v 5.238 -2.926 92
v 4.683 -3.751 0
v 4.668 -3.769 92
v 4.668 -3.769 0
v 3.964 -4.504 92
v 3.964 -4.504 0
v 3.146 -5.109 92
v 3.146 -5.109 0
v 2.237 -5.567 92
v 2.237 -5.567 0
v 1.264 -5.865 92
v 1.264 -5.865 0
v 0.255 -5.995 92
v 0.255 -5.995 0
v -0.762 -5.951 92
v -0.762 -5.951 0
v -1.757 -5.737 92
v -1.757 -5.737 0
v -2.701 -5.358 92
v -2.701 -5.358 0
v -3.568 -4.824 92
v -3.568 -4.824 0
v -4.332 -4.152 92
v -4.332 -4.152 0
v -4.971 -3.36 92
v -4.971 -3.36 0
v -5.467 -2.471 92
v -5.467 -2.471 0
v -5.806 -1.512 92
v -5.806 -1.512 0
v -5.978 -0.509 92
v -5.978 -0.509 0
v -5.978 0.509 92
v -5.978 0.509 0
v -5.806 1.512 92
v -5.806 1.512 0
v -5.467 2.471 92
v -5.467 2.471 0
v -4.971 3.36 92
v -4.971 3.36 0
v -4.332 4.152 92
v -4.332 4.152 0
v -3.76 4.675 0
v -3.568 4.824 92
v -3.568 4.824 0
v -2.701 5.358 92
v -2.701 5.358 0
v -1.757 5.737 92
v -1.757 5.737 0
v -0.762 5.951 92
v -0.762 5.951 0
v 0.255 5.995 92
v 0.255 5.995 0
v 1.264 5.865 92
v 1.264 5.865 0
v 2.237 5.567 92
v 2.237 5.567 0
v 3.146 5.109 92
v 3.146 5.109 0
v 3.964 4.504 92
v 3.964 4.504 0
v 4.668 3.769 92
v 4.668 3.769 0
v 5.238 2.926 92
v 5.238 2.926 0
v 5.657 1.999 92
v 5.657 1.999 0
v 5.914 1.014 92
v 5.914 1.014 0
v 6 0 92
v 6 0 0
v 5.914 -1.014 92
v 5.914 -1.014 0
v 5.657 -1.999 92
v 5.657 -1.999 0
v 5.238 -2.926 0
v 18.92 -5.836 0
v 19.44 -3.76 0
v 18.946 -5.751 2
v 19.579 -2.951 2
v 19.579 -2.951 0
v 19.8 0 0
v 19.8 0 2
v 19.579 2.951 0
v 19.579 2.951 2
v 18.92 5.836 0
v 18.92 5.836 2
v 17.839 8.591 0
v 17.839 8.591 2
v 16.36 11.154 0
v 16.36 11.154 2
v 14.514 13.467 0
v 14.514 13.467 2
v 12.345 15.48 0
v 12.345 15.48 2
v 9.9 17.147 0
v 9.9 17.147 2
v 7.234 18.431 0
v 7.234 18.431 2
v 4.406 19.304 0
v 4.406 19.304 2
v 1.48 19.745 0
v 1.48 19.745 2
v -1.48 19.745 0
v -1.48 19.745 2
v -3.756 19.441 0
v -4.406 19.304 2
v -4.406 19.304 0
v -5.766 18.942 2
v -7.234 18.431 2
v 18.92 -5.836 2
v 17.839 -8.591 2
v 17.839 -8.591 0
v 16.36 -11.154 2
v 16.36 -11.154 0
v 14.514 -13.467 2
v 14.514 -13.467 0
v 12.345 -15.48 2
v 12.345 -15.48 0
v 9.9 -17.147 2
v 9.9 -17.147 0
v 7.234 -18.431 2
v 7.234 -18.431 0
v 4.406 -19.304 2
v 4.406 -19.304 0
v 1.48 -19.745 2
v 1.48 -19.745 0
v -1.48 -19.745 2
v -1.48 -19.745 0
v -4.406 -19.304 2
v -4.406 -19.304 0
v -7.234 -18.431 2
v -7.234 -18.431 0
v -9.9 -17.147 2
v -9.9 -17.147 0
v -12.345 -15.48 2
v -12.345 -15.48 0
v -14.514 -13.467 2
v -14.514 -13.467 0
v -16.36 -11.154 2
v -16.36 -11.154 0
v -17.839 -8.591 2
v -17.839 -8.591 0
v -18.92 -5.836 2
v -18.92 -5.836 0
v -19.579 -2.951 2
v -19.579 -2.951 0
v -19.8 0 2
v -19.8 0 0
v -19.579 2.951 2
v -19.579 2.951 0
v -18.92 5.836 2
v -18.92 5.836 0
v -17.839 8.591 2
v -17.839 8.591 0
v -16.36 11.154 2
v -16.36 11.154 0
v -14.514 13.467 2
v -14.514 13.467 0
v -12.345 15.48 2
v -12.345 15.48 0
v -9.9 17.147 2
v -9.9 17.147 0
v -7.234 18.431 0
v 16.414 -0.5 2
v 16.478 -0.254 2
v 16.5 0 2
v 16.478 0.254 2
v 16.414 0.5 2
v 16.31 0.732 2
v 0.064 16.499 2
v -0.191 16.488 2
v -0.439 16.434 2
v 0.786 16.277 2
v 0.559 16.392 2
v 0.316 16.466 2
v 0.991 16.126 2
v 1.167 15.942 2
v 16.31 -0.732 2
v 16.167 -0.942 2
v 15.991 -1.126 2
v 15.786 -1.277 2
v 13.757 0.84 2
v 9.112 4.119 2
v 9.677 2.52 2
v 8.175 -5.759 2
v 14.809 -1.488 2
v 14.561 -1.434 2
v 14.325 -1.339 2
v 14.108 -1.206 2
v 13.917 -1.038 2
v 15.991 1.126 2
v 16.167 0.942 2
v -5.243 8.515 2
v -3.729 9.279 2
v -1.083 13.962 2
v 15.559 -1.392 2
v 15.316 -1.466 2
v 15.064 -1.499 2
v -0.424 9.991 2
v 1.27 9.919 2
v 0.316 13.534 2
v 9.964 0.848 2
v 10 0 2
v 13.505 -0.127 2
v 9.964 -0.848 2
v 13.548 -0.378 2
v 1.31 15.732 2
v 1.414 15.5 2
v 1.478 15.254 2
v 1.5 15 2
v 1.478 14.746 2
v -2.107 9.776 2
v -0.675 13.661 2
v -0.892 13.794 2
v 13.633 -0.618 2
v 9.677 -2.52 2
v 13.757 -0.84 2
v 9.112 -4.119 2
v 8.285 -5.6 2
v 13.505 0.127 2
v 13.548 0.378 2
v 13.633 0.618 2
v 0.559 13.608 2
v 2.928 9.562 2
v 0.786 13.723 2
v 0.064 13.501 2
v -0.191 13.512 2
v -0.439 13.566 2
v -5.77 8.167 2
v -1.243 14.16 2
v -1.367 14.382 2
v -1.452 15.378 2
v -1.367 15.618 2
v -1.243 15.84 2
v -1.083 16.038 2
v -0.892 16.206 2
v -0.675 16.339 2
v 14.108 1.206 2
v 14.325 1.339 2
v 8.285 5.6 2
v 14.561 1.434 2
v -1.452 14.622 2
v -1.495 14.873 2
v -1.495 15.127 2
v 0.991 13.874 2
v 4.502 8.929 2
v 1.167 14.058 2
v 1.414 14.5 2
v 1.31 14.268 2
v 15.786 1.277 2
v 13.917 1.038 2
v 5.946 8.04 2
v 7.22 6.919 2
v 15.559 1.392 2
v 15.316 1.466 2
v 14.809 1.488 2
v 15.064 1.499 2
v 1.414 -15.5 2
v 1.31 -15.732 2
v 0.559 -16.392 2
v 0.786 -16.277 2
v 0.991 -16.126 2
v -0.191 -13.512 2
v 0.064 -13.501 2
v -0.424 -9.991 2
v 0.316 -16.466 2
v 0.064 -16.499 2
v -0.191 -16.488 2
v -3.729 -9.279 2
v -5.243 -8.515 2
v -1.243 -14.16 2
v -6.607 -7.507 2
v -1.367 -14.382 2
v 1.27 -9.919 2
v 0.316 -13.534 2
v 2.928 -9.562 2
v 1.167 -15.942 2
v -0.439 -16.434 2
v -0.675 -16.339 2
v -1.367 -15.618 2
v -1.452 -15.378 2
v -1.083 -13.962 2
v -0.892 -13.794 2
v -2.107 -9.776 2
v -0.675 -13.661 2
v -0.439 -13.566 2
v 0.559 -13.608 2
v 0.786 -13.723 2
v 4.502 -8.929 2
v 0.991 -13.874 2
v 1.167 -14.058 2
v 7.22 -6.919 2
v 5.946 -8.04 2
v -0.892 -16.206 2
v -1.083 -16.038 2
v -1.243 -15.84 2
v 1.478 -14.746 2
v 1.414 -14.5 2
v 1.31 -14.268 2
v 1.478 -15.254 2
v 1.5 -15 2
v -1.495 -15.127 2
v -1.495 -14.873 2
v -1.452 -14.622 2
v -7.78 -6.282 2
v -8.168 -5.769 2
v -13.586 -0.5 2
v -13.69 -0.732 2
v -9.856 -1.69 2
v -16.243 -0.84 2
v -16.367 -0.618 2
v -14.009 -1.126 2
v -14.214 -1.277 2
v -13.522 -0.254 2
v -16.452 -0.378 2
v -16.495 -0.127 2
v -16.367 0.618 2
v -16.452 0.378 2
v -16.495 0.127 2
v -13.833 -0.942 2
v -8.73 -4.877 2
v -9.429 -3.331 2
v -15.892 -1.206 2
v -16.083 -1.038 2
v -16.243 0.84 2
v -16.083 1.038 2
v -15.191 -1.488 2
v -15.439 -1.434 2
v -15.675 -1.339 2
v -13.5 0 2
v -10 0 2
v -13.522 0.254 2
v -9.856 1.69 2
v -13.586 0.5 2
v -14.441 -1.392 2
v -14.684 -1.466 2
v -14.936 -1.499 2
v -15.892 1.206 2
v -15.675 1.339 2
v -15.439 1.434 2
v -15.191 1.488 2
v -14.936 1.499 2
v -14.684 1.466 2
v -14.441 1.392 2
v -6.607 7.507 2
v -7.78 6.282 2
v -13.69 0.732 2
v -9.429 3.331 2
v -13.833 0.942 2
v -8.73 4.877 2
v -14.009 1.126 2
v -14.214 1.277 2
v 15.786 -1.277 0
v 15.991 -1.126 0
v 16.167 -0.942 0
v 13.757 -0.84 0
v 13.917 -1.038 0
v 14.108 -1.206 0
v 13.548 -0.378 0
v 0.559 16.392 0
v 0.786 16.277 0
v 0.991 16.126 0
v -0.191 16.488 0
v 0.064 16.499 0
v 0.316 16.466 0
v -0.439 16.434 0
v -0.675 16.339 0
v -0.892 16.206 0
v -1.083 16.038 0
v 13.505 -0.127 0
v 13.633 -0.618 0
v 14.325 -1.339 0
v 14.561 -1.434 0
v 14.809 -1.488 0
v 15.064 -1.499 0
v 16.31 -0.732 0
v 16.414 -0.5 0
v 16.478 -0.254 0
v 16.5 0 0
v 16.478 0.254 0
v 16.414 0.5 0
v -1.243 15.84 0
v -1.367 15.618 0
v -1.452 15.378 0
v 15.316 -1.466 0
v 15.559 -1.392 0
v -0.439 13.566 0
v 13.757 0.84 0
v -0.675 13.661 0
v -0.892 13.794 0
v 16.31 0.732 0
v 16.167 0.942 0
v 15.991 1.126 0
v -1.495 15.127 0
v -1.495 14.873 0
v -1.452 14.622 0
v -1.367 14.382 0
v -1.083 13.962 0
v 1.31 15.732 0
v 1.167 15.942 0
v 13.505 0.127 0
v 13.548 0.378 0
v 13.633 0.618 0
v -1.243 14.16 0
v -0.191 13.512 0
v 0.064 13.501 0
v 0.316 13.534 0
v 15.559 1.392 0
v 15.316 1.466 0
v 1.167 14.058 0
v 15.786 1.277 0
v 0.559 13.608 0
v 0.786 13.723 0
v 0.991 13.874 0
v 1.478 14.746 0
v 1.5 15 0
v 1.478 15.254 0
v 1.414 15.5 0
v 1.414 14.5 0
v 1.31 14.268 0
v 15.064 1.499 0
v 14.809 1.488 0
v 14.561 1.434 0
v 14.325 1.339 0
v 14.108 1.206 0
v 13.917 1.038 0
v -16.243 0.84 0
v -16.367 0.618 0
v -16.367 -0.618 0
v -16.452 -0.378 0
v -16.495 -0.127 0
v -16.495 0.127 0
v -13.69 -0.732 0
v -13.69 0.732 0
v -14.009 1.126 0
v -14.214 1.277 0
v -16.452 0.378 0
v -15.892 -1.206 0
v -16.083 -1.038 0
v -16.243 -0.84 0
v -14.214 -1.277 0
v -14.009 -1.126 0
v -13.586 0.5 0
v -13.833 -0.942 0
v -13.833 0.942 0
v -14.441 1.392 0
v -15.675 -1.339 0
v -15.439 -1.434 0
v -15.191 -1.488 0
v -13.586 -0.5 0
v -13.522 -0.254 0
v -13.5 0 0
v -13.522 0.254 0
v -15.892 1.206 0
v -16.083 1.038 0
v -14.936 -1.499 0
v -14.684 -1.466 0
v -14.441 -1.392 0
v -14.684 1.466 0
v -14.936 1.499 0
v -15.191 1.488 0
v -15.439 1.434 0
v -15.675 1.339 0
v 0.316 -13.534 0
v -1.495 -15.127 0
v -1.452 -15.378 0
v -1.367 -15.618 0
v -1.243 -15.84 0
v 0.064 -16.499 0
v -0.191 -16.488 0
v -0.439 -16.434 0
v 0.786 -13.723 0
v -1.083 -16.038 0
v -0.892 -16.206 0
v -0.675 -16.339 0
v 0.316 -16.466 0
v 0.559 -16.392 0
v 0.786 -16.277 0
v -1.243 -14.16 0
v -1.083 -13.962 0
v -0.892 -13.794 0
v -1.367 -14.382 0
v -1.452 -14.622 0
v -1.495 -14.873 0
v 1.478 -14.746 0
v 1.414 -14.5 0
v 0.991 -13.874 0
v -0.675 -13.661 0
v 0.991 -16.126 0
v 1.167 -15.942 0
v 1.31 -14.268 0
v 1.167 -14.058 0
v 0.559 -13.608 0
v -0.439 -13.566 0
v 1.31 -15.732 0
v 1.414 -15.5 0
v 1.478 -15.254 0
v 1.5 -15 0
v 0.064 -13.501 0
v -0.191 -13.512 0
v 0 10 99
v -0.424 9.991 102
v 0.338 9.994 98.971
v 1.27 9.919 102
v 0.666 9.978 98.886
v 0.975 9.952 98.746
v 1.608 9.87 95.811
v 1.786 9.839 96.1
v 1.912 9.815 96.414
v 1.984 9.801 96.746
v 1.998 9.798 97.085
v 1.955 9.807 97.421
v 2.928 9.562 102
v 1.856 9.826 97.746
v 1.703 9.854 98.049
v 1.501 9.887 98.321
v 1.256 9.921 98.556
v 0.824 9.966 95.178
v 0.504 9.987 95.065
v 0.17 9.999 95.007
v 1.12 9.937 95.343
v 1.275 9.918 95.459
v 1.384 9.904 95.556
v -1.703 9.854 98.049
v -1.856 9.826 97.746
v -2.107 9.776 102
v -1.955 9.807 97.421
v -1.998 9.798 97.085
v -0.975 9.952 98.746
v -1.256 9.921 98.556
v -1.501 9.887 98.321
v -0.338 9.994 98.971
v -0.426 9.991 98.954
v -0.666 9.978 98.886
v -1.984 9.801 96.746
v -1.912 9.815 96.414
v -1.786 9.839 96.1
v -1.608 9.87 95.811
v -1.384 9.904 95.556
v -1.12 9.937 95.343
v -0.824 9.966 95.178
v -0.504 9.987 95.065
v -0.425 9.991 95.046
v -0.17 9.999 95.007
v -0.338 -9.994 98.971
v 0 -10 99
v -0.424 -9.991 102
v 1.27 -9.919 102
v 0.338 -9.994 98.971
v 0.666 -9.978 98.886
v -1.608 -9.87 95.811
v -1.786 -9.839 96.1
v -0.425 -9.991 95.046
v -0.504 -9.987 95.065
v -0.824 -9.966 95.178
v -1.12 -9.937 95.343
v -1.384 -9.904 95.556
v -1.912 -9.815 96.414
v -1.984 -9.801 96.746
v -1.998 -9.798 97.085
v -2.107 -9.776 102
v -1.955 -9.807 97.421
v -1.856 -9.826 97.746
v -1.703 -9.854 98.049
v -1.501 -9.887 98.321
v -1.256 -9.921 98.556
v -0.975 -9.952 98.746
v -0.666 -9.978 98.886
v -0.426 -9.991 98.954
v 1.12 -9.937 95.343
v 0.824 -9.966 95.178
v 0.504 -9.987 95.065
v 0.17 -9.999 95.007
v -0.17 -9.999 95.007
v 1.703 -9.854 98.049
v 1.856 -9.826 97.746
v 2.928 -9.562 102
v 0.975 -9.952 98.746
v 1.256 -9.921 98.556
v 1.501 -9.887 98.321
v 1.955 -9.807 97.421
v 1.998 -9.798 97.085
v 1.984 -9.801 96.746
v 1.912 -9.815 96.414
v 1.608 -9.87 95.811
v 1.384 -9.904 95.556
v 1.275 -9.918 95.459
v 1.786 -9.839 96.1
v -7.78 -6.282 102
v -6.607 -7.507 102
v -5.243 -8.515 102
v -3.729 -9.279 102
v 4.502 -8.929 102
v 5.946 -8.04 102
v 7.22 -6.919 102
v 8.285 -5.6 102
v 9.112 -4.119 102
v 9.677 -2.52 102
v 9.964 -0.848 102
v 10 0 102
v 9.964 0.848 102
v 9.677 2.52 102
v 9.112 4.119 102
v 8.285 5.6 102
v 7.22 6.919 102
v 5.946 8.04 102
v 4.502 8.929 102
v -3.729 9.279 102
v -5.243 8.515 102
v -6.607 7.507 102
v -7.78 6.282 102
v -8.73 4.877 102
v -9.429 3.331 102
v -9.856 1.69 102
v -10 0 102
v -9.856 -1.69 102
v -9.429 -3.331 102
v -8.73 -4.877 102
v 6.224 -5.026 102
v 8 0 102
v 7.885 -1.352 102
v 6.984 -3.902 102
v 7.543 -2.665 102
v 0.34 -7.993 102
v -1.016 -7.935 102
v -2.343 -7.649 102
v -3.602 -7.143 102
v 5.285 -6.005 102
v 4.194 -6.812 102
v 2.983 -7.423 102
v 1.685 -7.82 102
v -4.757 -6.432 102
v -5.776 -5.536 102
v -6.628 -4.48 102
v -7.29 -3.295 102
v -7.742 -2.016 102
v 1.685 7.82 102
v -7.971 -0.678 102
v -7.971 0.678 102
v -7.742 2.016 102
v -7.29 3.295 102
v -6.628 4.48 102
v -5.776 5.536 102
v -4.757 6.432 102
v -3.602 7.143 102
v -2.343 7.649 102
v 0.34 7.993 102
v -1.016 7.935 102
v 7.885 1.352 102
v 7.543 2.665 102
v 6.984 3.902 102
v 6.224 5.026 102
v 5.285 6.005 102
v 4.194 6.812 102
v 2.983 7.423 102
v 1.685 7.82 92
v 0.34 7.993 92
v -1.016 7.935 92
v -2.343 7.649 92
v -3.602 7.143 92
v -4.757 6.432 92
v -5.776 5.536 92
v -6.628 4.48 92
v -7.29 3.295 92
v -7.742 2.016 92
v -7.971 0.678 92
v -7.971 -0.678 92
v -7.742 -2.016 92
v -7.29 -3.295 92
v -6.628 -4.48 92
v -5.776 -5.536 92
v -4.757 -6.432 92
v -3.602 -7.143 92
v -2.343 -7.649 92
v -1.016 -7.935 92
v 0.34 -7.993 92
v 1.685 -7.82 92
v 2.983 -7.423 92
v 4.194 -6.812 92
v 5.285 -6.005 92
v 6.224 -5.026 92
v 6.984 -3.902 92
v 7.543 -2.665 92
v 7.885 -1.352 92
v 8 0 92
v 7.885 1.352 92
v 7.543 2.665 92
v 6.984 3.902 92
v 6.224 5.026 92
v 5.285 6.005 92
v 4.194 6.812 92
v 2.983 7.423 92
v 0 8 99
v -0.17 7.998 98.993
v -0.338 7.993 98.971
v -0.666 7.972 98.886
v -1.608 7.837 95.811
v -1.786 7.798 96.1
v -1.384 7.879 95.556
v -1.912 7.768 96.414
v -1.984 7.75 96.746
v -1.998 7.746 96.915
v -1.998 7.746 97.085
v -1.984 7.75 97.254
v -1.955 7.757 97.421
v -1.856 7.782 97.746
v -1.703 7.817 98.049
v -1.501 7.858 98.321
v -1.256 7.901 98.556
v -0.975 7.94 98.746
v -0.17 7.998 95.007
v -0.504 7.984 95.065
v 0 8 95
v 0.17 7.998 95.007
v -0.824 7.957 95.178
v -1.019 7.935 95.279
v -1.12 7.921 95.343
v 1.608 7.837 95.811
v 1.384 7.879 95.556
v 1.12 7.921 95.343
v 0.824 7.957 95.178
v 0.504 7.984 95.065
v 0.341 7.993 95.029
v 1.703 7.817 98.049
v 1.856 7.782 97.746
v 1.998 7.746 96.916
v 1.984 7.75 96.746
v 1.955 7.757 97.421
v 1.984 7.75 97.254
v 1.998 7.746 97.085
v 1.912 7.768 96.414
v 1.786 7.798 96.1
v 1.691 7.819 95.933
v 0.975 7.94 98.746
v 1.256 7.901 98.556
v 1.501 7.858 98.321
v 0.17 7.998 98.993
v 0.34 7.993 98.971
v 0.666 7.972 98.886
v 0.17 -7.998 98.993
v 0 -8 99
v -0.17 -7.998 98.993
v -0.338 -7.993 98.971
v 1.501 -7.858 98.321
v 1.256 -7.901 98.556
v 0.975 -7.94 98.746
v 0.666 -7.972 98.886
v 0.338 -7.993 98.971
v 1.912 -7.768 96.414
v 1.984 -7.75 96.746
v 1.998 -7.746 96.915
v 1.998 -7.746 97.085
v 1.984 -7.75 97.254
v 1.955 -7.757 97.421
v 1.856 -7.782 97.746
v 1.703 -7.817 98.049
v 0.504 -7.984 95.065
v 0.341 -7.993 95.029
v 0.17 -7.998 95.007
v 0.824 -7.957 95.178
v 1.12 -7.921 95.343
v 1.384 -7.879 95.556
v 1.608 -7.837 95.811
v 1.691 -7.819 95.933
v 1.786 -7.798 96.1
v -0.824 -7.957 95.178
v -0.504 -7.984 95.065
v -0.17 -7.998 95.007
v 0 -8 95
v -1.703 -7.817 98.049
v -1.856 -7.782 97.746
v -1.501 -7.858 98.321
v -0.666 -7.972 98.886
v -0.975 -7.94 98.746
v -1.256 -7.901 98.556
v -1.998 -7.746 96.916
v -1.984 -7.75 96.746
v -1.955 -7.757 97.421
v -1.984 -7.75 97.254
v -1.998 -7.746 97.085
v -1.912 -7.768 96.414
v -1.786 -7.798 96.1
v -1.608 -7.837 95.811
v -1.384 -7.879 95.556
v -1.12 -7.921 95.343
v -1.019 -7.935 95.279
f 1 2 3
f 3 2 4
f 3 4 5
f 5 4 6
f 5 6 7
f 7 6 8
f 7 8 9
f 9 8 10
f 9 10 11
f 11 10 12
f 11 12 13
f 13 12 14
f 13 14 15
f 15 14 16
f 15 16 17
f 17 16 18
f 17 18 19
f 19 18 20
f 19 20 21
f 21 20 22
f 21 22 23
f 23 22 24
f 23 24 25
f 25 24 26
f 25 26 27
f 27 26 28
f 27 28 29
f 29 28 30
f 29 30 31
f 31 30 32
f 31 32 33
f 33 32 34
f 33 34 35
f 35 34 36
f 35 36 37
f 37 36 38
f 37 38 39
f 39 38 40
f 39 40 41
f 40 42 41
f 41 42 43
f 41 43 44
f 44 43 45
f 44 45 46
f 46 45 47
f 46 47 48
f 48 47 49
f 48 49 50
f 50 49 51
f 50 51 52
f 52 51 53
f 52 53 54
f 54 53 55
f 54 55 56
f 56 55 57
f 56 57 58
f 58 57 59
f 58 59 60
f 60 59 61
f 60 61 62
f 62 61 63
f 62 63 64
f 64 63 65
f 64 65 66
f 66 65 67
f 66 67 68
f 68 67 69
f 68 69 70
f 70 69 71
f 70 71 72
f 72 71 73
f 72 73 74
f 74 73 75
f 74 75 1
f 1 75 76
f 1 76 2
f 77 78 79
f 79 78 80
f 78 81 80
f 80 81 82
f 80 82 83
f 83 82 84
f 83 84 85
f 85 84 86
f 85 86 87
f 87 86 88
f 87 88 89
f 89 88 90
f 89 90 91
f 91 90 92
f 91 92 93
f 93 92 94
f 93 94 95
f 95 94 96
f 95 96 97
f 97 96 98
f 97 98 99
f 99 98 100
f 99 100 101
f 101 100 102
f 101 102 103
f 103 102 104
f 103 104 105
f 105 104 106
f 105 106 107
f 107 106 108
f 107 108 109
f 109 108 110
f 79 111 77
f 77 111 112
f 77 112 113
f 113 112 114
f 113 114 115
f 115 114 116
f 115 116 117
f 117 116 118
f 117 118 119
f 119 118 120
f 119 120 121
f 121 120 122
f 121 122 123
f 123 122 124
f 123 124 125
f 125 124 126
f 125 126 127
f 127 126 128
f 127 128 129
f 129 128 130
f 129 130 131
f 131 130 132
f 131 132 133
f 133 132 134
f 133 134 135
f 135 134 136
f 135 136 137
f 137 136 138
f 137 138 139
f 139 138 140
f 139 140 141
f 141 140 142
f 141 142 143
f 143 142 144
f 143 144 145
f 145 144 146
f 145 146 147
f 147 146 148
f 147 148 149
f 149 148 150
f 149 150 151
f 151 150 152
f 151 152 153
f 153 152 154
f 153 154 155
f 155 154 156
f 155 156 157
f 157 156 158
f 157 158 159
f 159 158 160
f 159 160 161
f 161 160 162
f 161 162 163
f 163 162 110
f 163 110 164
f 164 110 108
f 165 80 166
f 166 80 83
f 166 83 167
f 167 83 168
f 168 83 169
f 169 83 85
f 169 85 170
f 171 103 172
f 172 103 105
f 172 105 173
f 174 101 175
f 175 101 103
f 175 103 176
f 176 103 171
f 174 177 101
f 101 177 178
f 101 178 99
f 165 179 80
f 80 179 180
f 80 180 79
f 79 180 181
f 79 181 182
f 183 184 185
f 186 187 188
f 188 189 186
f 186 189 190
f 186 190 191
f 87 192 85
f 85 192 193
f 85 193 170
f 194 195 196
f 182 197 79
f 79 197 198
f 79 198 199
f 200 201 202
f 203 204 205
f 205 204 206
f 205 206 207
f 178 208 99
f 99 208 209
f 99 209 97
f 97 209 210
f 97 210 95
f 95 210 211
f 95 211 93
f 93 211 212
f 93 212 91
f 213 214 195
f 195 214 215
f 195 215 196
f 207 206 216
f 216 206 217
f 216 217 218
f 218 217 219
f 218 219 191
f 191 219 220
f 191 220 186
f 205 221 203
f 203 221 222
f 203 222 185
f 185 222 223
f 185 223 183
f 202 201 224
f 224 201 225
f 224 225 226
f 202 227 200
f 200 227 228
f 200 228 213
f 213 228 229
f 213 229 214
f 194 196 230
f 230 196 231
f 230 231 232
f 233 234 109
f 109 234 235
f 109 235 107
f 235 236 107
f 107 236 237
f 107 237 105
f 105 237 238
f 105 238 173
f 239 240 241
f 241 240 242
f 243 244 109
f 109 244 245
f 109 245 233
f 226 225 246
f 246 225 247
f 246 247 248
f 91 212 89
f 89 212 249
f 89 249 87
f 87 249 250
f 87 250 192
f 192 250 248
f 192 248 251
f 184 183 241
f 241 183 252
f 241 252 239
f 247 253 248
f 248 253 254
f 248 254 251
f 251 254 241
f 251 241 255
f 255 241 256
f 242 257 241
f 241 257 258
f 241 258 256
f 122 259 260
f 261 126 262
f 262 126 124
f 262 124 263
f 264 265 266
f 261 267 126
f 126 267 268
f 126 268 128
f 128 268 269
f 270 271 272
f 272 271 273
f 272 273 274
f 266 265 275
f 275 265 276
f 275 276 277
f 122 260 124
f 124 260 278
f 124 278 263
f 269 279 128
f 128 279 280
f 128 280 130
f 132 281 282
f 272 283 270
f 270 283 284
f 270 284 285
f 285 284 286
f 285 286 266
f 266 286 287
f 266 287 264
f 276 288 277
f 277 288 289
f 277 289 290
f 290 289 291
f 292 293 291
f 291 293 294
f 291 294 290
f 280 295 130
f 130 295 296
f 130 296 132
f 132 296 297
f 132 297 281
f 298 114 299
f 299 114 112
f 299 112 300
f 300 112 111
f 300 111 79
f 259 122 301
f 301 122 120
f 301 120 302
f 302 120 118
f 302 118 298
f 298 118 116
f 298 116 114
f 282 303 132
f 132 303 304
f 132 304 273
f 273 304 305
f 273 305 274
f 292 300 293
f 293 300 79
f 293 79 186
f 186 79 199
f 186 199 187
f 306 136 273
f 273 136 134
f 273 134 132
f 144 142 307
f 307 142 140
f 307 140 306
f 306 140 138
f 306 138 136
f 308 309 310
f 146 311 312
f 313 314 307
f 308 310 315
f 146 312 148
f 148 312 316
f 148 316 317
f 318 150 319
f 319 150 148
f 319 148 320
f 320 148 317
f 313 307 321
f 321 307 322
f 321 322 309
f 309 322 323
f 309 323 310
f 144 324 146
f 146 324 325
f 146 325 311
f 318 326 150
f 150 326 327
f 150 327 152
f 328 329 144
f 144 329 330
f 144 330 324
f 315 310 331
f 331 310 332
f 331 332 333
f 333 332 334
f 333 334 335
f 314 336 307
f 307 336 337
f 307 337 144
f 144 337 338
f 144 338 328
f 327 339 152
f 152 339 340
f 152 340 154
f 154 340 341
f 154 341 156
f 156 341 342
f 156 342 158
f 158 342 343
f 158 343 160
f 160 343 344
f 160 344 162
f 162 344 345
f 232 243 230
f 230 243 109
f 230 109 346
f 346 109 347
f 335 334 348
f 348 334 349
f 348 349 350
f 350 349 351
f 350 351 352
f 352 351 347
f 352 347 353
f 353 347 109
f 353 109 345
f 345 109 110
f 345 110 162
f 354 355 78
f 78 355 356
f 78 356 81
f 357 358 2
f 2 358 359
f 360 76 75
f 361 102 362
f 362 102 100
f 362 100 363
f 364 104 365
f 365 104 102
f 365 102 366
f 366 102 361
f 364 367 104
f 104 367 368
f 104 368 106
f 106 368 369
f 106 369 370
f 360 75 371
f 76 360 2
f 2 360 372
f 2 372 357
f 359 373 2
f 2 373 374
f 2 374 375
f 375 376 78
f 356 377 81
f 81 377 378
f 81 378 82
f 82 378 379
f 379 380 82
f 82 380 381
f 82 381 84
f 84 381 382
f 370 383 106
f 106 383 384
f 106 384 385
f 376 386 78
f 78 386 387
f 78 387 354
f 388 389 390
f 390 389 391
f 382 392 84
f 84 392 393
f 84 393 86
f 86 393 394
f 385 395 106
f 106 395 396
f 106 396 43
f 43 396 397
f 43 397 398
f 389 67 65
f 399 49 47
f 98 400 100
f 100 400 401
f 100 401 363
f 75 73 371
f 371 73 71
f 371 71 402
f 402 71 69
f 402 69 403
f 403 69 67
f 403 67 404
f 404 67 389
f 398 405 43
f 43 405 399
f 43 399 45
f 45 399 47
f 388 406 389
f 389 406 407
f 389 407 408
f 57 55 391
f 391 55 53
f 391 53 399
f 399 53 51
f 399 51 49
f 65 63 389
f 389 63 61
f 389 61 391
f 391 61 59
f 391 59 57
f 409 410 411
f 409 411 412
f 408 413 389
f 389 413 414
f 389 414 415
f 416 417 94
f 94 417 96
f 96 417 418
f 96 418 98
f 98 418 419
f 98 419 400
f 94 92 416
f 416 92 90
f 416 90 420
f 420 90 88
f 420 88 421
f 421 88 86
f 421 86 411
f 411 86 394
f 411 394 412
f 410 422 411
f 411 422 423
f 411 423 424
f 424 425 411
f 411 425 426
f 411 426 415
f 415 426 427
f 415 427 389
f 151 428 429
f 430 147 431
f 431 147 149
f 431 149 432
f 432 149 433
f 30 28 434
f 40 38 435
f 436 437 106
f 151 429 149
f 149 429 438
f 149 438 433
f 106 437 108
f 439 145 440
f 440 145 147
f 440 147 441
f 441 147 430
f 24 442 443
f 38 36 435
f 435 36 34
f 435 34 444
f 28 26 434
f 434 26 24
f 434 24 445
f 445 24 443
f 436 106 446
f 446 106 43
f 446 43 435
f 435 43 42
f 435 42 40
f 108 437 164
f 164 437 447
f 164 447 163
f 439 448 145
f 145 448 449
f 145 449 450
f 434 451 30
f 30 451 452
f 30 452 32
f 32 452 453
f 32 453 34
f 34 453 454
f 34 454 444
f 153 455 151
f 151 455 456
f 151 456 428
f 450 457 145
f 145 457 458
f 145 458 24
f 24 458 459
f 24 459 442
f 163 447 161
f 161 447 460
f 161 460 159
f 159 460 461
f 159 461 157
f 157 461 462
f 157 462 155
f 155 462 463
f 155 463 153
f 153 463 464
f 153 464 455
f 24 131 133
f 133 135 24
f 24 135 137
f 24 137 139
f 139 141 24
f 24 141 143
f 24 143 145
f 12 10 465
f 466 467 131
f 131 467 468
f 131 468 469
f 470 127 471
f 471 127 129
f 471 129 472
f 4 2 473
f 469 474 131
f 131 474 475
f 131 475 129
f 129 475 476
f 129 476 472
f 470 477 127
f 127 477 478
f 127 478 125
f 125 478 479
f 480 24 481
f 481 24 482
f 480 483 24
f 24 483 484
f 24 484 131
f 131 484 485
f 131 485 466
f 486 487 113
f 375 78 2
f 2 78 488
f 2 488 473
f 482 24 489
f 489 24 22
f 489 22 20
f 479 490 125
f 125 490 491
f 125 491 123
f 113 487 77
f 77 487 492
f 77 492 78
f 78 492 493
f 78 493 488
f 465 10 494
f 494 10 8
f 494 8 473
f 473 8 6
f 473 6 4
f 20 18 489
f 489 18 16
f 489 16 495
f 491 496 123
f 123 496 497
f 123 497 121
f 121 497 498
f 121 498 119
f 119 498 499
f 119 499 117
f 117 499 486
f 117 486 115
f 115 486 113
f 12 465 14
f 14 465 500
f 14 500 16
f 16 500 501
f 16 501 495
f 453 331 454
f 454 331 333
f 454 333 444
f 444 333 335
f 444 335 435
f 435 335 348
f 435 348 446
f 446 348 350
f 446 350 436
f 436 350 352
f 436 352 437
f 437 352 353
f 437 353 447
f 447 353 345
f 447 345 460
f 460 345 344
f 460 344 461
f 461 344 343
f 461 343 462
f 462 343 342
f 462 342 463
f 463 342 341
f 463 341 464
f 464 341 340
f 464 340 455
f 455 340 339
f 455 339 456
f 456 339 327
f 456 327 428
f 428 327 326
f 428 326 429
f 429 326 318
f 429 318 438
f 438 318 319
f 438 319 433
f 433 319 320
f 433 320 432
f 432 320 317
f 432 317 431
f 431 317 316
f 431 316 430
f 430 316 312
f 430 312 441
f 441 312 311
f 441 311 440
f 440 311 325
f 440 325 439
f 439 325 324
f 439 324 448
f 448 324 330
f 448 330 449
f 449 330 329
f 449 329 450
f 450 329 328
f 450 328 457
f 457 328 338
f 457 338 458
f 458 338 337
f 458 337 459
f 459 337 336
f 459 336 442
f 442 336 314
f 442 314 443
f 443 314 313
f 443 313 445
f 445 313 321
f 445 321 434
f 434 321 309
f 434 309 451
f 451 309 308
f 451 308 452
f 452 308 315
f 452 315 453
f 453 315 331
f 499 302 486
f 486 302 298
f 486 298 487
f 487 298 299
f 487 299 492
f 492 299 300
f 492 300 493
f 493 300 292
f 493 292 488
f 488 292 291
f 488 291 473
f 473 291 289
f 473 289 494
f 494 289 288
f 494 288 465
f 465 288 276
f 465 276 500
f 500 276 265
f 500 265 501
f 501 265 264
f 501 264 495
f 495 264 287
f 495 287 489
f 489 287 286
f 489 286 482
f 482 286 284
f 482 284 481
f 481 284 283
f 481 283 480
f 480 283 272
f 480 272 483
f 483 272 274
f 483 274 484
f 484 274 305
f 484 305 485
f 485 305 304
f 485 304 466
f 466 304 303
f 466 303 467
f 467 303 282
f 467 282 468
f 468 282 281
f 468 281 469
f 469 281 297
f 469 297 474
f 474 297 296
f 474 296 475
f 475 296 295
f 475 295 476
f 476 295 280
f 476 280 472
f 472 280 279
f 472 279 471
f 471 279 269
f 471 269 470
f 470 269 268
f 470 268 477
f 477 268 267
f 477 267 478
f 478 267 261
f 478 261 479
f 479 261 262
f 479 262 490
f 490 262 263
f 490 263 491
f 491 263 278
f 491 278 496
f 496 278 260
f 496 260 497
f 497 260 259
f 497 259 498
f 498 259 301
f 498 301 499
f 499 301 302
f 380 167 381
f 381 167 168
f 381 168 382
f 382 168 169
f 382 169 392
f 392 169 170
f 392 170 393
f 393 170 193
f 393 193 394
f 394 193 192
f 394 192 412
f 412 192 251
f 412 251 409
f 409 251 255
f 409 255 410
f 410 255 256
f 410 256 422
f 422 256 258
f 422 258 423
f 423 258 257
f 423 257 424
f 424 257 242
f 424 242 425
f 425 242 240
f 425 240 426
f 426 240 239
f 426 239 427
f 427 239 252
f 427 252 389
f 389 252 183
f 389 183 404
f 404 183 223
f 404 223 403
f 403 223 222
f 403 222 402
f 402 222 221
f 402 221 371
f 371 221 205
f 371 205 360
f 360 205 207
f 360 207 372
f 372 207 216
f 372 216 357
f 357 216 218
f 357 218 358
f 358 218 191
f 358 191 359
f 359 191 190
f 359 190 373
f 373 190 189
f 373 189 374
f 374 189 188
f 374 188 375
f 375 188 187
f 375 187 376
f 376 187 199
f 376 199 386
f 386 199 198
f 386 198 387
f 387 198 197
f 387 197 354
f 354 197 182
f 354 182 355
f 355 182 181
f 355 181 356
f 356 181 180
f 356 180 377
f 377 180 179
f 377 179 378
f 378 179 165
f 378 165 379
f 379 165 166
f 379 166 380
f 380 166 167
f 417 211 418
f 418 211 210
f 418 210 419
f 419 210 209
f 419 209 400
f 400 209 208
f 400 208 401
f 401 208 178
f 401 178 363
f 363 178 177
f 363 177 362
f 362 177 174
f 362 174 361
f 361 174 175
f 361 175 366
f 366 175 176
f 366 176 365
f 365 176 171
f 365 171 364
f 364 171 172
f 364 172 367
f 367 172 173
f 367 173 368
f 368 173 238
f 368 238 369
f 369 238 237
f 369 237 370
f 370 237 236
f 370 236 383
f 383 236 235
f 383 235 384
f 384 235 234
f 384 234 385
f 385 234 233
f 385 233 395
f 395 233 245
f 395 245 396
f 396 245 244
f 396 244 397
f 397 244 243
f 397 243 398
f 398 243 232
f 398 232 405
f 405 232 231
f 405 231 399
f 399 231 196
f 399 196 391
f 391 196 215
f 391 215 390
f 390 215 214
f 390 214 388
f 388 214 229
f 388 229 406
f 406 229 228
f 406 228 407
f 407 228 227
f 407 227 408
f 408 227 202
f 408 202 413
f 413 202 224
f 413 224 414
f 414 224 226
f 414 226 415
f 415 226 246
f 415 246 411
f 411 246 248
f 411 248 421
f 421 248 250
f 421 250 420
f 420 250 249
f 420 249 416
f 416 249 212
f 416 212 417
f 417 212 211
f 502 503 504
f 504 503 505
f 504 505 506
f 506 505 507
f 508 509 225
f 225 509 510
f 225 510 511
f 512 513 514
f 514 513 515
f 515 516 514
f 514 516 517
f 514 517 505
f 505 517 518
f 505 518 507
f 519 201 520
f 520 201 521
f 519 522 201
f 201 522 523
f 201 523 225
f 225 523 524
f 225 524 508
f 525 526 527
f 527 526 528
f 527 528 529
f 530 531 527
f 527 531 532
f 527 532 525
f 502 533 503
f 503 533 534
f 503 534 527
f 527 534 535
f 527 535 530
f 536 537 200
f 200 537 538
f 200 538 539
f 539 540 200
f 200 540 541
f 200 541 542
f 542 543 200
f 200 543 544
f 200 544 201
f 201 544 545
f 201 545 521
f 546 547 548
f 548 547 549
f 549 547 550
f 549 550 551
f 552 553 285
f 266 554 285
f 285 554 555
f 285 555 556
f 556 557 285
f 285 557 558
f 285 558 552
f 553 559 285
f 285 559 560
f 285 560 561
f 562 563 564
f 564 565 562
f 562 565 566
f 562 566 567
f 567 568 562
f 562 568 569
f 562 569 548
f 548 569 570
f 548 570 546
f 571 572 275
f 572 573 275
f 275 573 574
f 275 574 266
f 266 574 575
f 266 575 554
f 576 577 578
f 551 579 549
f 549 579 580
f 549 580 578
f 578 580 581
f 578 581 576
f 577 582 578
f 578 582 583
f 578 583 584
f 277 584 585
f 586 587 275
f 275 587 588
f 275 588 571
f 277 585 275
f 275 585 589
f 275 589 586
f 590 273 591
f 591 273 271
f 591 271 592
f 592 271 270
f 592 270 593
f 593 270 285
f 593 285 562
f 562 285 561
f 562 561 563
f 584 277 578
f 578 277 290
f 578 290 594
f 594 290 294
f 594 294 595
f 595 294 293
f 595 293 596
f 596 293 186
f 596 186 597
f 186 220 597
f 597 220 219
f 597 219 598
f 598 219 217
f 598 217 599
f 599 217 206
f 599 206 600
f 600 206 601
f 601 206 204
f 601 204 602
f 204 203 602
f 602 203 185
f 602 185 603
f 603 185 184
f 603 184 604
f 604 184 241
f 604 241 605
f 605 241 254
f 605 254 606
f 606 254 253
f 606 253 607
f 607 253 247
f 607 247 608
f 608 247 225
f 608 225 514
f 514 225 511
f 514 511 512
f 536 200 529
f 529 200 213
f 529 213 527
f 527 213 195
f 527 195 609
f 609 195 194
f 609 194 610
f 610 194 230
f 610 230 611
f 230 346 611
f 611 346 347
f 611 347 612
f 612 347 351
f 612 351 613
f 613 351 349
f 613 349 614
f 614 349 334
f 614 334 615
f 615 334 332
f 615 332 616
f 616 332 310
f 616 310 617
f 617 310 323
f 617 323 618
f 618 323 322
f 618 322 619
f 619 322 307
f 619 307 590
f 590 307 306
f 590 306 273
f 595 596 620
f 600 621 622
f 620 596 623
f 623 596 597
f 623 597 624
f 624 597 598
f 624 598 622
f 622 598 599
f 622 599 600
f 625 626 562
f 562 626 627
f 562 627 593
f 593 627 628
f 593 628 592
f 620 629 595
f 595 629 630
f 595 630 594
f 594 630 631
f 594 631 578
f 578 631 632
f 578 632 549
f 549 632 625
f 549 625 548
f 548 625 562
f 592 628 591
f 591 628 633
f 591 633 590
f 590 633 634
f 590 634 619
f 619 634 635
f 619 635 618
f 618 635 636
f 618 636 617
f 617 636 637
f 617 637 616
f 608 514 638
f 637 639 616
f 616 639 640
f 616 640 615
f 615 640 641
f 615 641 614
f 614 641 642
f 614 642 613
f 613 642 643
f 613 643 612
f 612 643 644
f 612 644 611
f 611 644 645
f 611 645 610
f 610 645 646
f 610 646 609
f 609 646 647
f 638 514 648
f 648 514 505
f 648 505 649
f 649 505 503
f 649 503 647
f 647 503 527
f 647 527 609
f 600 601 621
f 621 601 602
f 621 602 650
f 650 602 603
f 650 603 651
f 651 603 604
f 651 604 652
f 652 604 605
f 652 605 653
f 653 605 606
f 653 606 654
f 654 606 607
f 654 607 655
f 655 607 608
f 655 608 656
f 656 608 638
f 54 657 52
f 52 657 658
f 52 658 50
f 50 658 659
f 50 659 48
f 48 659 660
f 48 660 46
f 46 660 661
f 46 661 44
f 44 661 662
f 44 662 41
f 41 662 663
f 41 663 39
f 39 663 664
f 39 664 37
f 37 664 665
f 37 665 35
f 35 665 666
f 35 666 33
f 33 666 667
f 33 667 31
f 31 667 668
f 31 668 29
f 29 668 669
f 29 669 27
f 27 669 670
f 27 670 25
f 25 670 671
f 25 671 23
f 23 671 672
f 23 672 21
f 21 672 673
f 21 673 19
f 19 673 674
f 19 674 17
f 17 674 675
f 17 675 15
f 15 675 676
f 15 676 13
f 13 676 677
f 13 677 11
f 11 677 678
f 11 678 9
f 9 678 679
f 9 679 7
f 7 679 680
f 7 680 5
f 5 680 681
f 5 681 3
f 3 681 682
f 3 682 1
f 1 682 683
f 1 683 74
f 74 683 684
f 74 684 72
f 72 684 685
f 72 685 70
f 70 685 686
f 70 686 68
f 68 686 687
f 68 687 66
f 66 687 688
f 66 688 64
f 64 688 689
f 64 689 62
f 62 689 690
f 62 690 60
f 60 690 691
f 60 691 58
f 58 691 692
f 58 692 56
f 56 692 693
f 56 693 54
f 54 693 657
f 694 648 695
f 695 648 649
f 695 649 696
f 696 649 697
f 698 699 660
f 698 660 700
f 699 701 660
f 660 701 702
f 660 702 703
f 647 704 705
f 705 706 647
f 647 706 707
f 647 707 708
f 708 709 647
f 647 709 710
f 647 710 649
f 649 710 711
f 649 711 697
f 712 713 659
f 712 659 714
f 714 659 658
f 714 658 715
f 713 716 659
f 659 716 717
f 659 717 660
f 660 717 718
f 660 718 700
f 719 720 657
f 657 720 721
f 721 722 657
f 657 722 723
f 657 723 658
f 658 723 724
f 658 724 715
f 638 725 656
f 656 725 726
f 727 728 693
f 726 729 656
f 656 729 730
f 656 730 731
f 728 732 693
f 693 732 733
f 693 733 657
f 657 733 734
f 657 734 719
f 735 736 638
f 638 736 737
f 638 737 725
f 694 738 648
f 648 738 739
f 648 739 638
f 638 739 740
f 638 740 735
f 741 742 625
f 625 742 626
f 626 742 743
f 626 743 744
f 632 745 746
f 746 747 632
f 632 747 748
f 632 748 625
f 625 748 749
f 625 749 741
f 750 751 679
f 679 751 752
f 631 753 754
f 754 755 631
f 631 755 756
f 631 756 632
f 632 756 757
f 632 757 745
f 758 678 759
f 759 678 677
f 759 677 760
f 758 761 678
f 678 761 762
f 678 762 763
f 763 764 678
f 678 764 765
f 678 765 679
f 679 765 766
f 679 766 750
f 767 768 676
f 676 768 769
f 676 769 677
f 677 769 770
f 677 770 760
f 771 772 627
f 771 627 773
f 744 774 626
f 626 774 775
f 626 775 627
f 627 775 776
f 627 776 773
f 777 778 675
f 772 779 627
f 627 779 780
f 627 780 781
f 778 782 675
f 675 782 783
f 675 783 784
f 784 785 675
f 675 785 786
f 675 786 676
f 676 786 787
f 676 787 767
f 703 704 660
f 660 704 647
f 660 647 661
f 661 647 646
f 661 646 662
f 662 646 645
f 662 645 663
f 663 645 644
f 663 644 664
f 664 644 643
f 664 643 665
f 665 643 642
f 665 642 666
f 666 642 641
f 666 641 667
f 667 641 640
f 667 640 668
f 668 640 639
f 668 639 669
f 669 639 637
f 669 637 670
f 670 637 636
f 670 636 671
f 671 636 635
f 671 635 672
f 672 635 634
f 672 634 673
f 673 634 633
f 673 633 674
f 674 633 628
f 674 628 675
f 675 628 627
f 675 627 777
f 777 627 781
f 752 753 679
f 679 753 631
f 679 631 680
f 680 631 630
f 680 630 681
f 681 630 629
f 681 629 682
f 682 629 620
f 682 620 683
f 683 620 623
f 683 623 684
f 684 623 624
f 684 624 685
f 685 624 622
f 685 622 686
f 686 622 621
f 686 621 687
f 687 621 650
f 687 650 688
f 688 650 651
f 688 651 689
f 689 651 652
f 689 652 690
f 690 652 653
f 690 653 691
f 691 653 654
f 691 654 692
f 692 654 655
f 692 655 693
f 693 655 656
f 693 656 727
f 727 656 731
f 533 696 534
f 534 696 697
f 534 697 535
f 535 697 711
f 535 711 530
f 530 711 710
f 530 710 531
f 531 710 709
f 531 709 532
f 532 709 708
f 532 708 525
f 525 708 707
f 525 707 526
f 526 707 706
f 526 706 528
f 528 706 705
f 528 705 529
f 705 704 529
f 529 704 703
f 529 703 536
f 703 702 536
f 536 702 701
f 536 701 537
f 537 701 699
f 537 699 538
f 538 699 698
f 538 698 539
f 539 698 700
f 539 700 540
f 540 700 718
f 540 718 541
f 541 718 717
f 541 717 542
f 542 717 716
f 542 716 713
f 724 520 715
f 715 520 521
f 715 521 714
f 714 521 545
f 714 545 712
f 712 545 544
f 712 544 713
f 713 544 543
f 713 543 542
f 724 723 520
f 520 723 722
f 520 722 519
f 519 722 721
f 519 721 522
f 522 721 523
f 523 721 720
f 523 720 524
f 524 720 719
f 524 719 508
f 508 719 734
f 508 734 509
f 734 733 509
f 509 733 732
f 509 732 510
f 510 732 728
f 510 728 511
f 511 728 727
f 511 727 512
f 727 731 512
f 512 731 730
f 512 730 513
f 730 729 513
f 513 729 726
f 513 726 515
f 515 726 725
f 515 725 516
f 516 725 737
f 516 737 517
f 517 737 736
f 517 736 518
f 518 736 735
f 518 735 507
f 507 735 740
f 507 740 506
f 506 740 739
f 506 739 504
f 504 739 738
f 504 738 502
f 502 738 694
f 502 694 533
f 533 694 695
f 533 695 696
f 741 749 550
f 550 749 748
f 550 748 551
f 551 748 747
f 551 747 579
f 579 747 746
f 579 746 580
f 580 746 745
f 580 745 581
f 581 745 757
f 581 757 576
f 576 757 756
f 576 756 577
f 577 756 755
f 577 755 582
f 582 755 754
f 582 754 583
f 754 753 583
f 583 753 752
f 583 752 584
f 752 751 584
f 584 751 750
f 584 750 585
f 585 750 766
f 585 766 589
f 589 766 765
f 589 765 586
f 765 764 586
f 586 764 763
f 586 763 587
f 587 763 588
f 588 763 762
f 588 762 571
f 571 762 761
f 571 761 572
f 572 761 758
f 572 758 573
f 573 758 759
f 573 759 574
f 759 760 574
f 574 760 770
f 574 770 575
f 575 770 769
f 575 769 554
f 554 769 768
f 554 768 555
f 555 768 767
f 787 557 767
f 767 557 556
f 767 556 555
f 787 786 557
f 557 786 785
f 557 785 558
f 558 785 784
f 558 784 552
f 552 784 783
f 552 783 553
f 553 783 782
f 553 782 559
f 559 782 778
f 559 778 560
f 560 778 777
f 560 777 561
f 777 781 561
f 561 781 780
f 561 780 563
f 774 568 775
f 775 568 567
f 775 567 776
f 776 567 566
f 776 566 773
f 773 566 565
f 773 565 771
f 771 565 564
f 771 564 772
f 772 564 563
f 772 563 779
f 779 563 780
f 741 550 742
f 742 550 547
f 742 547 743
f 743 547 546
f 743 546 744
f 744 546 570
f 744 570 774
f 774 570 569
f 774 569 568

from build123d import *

# Parameters (mm, degrees)
SKETCH1_R           = 19.8
BOSS_EXTRUDE1_DEPTH = 2
SKETCH2_R           = 1.5
CUT_EXTRUDE1_DEPTH  = 5
SKETCH3_R           = 10
BOSS_EXTRUDE2_DEPTH = 100
SKETCH4_R           = 6
CUT_EXTRUDE3_DEPTH  = 200
SKETCH6_R           = 8
CUT_EXTRUDE4_DEPTH  = 10
SKETCH13_R          = 2
CUT_EXTRUDE7_DEPTH  = 20


with BuildPart() as part:
    # Sketch1 → Boss-Extrude1 (new body)
    with BuildSketch(Plane.XY):
        Circle(SKETCH1_R)
    extrude(amount=BOSS_EXTRUDE1_DEPTH)

    # Sketch2 → Cut-Extrude1 (cut)
    with BuildSketch(Plane.XY.offset(2)):
        with Locations((0, 15)):
            Circle(SKETCH2_R)
        with Locations((15, 0)):
            Circle(SKETCH2_R)
        with Locations((0, -15)):
            Circle(SKETCH2_R)
        with Locations((-15, 0)):
            Circle(SKETCH2_R)
    extrude(amount=-CUT_EXTRUDE1_DEPTH, mode=Mode.SUBTRACT)

    # Sketch3 → Boss-Extrude2 (add)
    with BuildSketch(Plane.XY.offset(2)):
        Circle(SKETCH3_R)
    extrude(amount=BOSS_EXTRUDE2_DEPTH)

    # Sketch4 → Cut-Extrude3 (cut)
    with BuildSketch(Plane.XY.offset(102)):
        Circle(SKETCH4_R)
    extrude(amount=-CUT_EXTRUDE3_DEPTH, mode=Mode.SUBTRACT)

    # Sketch6 → Cut-Extrude4 (cut)
    with BuildSketch(Plane.XY.offset(102)):
        Circle(SKETCH6_R)
    extrude(amount=-CUT_EXTRUDE4_DEPTH, mode=Mode.SUBTRACT)

    # Sketch13 → Cut-Extrude7 (cut)
    with BuildSketch(Plane(origin=(0, 10, 0), x_dir=(1, 0, 0), z_dir=(0, 1, 0))):
        with Locations(Location((0, -97, 0), (0, 0, 270))):
            Circle(SKETCH13_R)
    extrude(amount=-CUT_EXTRUDE7_DEPTH, mode=Mode.SUBTRACT)


solid = part.part
